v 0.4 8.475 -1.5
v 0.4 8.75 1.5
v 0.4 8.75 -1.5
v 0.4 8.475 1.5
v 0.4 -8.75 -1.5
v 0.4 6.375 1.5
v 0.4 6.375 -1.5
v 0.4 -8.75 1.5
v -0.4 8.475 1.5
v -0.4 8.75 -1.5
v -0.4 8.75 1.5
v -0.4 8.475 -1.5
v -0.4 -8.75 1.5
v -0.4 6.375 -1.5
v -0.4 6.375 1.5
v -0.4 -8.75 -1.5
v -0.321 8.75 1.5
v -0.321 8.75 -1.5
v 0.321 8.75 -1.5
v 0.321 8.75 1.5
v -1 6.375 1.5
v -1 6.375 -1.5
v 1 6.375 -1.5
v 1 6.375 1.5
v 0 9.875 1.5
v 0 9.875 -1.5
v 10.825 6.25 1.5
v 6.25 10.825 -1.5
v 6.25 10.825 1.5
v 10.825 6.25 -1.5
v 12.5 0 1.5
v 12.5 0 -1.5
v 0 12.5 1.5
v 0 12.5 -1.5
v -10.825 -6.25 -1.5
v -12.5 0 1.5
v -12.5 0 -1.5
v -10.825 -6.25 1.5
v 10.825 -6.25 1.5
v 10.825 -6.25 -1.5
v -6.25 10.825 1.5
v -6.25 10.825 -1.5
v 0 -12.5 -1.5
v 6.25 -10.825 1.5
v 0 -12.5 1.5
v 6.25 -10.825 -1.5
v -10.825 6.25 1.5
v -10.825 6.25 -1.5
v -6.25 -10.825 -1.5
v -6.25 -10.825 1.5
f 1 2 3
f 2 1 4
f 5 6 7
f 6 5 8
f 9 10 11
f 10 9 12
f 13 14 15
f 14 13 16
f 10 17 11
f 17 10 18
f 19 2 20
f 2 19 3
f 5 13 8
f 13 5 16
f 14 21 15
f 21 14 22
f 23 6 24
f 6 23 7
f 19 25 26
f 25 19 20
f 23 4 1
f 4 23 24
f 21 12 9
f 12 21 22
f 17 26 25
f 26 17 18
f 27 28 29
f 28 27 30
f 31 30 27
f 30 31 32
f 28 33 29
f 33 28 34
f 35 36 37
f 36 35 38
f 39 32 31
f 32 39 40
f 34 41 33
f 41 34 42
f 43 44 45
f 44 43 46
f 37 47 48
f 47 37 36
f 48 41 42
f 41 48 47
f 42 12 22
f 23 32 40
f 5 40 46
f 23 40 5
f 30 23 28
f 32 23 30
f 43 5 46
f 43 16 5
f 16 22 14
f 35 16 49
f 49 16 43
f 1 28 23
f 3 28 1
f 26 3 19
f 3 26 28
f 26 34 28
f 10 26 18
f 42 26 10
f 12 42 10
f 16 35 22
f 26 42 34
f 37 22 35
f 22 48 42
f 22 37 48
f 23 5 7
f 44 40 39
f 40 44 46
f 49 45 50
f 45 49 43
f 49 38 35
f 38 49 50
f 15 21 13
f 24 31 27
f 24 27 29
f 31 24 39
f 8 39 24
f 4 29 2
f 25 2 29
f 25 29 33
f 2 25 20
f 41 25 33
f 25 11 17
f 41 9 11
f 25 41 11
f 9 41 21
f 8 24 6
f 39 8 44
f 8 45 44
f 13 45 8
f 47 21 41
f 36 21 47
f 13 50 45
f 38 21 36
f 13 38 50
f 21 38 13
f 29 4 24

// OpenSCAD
$fn=12;

// unit is mm

diameter = 25;
thickness = 3;
slit_width = 0.8;
arrow_base = 7;

ab_2 = arrow_base / 2;
ab_7 = arrow_base / 7;
thickness12 = 1.2 * thickness;
diameter_2 = diameter / 2;
fs = 0.4 * arrow_base; // feather side
fs2 = 2 * fs;


difference() {

  union() {
    cylinder(d=diameter, h=thickness, center=true);
  }

  union() {

    translate([ 0, 0, 0 ])
      cube([ slit_width, 0.7 * diameter, thickness12 ], center=true);

    translate([ 0, diameter_2 - 1.75 * ab_2, -0.5 * thickness12 ])
      linear_extrude(thickness12)
        polygon([
          [ -ab_7, 0 ], [ 0, ab_2 ], [ ab_7, 0 ] ]);
  }
}
